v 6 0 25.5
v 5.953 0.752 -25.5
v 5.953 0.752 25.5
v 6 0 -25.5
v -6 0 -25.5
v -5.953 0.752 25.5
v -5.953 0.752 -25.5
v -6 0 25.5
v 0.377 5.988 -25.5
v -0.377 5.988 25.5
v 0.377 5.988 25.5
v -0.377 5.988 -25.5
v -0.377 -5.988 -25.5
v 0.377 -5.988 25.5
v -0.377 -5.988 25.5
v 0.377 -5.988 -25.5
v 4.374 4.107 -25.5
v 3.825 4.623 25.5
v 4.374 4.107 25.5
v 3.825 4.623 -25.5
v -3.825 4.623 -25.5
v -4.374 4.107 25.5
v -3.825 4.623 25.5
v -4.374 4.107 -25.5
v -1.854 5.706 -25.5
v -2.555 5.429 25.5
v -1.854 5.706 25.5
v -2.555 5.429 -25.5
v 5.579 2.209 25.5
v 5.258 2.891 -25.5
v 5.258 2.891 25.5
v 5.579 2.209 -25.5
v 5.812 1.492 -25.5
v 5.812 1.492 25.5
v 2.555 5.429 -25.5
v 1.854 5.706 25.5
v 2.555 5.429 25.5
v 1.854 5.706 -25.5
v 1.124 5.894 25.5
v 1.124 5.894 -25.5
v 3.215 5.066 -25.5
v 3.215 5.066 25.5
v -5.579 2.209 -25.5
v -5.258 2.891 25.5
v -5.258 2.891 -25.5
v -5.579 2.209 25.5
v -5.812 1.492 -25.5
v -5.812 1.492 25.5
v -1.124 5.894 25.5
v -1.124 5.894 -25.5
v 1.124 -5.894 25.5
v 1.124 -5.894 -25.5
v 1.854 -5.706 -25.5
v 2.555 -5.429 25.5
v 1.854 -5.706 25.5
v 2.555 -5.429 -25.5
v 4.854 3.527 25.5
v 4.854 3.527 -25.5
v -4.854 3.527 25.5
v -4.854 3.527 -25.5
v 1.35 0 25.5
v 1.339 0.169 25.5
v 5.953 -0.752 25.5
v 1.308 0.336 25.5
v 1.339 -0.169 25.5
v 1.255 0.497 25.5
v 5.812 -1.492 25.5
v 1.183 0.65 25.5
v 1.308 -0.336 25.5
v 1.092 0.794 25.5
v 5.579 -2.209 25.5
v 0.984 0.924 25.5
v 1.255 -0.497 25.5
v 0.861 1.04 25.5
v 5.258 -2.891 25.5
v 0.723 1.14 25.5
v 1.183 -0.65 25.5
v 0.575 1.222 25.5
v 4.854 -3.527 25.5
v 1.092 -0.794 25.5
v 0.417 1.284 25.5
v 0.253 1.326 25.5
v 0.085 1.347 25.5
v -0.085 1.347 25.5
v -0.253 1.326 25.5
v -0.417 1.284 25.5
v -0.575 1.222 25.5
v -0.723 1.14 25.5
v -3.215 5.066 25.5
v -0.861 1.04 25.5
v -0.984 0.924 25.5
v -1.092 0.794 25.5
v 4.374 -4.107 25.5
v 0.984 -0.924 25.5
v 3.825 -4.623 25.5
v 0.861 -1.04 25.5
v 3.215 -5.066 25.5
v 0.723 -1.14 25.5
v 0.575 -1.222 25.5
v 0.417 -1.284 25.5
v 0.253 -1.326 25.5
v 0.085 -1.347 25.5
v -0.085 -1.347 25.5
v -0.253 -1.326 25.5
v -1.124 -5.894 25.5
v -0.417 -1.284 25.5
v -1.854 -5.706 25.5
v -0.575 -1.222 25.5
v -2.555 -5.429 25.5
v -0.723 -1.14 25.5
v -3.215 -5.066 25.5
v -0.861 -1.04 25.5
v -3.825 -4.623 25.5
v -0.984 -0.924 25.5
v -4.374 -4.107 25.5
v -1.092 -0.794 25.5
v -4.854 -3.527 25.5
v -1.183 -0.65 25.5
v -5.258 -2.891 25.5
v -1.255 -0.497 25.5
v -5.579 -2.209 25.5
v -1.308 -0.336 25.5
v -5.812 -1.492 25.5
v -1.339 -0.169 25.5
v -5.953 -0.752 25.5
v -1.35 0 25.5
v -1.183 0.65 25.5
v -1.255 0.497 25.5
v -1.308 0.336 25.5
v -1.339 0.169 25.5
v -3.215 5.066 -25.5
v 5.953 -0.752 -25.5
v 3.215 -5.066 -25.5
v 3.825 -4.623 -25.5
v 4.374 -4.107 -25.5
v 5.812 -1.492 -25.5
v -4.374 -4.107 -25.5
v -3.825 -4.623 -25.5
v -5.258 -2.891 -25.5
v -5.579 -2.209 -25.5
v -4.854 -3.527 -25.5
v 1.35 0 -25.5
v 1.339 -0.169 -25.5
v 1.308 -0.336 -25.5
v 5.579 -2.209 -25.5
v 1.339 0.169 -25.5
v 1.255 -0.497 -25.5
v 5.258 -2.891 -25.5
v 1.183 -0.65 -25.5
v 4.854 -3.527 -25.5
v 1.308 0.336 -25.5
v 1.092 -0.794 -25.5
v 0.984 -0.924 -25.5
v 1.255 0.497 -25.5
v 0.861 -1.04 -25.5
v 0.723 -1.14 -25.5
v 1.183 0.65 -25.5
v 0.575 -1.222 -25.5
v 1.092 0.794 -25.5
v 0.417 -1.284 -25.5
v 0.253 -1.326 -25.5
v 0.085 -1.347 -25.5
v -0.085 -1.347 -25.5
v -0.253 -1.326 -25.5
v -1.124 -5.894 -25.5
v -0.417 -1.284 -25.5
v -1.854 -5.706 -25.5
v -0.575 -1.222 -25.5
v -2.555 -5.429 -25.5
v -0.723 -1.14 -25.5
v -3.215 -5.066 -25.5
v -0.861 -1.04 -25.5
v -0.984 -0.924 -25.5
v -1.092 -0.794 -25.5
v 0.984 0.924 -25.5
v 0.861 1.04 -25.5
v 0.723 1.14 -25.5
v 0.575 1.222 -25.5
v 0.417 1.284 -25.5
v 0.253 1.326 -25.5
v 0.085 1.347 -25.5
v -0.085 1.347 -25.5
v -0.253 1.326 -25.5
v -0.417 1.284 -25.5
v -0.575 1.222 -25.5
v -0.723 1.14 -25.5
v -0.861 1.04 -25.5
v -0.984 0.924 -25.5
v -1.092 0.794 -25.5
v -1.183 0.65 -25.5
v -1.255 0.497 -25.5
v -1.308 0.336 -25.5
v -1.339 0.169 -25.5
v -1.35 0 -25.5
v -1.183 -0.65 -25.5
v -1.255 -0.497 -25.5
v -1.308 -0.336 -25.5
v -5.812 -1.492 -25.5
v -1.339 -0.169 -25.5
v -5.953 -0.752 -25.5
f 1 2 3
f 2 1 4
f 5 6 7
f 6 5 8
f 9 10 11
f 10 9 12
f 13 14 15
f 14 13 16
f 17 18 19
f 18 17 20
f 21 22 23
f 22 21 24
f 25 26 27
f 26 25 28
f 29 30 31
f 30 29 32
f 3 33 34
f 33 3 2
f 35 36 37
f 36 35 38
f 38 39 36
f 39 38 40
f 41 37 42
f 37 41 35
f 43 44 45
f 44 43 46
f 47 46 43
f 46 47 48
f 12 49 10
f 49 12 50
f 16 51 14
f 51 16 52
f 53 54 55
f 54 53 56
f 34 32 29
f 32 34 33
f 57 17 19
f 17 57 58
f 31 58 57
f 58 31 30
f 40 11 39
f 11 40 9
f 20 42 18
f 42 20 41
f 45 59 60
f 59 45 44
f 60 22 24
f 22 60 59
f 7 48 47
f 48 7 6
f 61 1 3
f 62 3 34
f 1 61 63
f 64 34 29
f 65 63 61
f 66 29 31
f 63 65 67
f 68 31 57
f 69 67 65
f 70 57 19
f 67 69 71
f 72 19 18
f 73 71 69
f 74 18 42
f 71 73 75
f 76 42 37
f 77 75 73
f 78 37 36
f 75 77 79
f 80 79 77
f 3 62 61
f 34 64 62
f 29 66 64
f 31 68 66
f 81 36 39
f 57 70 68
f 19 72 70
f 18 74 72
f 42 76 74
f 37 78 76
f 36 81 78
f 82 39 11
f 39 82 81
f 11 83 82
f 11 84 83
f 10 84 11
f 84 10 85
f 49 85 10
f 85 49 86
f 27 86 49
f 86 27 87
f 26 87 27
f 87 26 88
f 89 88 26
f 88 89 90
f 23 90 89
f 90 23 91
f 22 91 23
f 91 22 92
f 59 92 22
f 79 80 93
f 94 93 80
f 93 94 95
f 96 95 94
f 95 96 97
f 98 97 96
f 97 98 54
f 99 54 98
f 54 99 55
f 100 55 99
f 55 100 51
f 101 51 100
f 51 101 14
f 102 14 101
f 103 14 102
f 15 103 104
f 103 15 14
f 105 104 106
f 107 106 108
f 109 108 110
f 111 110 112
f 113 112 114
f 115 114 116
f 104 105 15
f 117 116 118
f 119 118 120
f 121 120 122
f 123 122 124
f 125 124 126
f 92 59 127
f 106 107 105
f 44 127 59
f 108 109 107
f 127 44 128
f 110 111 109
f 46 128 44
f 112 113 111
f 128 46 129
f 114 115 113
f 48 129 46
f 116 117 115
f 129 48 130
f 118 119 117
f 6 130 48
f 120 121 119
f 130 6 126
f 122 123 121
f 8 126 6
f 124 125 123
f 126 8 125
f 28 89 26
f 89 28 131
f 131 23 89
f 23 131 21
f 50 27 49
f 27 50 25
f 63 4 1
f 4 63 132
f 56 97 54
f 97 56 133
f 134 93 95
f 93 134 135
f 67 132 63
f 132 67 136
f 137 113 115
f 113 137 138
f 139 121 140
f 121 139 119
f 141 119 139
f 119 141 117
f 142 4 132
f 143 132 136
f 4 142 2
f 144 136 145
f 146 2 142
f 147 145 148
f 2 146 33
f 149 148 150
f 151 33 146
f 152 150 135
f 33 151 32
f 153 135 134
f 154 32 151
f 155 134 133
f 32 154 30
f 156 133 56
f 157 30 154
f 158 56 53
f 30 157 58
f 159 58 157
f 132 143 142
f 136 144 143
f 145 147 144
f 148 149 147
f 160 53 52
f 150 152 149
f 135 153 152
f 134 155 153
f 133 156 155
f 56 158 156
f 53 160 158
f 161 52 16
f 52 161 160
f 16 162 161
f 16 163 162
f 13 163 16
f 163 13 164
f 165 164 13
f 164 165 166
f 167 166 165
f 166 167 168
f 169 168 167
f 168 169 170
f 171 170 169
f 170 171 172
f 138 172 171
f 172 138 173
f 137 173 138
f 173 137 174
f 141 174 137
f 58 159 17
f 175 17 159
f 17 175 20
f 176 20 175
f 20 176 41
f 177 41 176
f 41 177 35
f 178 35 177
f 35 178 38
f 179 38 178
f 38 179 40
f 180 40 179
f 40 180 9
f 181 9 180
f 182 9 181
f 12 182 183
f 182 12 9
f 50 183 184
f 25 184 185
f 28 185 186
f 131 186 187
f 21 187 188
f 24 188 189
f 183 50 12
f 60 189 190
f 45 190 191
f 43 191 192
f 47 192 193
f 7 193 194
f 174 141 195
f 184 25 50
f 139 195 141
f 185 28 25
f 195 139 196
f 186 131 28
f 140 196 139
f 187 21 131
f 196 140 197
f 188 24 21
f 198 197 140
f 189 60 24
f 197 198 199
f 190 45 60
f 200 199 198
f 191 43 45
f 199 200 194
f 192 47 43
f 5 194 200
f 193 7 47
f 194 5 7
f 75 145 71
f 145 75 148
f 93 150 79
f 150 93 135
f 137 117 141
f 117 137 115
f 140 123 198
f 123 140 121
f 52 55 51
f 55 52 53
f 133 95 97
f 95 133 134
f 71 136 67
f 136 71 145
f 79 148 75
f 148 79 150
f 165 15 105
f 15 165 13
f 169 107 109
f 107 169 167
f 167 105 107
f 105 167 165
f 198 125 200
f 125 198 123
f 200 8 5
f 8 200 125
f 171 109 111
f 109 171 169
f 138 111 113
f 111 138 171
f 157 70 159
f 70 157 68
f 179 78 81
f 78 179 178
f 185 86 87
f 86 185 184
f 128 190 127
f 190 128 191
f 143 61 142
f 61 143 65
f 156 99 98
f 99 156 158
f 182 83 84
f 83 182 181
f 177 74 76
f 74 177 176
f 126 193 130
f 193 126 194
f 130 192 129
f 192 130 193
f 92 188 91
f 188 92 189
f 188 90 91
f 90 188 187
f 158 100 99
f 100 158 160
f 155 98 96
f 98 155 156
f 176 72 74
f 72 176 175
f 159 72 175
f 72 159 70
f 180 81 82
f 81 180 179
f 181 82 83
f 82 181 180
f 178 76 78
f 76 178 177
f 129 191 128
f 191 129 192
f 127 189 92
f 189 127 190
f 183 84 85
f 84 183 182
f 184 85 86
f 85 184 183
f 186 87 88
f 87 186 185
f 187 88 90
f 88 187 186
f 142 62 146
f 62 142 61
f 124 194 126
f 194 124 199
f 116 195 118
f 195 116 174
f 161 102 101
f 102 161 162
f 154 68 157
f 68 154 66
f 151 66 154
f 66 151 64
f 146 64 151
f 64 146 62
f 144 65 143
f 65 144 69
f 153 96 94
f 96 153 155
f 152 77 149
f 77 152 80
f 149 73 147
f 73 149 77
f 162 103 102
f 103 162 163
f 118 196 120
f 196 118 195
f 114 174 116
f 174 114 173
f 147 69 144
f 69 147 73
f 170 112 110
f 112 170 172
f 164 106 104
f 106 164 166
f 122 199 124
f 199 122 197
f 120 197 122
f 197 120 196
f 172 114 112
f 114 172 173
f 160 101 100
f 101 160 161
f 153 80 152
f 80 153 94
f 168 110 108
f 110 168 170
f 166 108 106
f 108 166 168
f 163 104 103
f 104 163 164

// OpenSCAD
$fn = 50;


difference() {
	union() {
		translate(v = [0, 0, -25.5000000000]) {
			cylinder(h = 51, r = 6.0000000000);
		}
	}
	union() {
		translate(v = [0, 0, -100.0000000000]) {
			cylinder(h = 200, r = 1.3500000000);
		}
	}
}
